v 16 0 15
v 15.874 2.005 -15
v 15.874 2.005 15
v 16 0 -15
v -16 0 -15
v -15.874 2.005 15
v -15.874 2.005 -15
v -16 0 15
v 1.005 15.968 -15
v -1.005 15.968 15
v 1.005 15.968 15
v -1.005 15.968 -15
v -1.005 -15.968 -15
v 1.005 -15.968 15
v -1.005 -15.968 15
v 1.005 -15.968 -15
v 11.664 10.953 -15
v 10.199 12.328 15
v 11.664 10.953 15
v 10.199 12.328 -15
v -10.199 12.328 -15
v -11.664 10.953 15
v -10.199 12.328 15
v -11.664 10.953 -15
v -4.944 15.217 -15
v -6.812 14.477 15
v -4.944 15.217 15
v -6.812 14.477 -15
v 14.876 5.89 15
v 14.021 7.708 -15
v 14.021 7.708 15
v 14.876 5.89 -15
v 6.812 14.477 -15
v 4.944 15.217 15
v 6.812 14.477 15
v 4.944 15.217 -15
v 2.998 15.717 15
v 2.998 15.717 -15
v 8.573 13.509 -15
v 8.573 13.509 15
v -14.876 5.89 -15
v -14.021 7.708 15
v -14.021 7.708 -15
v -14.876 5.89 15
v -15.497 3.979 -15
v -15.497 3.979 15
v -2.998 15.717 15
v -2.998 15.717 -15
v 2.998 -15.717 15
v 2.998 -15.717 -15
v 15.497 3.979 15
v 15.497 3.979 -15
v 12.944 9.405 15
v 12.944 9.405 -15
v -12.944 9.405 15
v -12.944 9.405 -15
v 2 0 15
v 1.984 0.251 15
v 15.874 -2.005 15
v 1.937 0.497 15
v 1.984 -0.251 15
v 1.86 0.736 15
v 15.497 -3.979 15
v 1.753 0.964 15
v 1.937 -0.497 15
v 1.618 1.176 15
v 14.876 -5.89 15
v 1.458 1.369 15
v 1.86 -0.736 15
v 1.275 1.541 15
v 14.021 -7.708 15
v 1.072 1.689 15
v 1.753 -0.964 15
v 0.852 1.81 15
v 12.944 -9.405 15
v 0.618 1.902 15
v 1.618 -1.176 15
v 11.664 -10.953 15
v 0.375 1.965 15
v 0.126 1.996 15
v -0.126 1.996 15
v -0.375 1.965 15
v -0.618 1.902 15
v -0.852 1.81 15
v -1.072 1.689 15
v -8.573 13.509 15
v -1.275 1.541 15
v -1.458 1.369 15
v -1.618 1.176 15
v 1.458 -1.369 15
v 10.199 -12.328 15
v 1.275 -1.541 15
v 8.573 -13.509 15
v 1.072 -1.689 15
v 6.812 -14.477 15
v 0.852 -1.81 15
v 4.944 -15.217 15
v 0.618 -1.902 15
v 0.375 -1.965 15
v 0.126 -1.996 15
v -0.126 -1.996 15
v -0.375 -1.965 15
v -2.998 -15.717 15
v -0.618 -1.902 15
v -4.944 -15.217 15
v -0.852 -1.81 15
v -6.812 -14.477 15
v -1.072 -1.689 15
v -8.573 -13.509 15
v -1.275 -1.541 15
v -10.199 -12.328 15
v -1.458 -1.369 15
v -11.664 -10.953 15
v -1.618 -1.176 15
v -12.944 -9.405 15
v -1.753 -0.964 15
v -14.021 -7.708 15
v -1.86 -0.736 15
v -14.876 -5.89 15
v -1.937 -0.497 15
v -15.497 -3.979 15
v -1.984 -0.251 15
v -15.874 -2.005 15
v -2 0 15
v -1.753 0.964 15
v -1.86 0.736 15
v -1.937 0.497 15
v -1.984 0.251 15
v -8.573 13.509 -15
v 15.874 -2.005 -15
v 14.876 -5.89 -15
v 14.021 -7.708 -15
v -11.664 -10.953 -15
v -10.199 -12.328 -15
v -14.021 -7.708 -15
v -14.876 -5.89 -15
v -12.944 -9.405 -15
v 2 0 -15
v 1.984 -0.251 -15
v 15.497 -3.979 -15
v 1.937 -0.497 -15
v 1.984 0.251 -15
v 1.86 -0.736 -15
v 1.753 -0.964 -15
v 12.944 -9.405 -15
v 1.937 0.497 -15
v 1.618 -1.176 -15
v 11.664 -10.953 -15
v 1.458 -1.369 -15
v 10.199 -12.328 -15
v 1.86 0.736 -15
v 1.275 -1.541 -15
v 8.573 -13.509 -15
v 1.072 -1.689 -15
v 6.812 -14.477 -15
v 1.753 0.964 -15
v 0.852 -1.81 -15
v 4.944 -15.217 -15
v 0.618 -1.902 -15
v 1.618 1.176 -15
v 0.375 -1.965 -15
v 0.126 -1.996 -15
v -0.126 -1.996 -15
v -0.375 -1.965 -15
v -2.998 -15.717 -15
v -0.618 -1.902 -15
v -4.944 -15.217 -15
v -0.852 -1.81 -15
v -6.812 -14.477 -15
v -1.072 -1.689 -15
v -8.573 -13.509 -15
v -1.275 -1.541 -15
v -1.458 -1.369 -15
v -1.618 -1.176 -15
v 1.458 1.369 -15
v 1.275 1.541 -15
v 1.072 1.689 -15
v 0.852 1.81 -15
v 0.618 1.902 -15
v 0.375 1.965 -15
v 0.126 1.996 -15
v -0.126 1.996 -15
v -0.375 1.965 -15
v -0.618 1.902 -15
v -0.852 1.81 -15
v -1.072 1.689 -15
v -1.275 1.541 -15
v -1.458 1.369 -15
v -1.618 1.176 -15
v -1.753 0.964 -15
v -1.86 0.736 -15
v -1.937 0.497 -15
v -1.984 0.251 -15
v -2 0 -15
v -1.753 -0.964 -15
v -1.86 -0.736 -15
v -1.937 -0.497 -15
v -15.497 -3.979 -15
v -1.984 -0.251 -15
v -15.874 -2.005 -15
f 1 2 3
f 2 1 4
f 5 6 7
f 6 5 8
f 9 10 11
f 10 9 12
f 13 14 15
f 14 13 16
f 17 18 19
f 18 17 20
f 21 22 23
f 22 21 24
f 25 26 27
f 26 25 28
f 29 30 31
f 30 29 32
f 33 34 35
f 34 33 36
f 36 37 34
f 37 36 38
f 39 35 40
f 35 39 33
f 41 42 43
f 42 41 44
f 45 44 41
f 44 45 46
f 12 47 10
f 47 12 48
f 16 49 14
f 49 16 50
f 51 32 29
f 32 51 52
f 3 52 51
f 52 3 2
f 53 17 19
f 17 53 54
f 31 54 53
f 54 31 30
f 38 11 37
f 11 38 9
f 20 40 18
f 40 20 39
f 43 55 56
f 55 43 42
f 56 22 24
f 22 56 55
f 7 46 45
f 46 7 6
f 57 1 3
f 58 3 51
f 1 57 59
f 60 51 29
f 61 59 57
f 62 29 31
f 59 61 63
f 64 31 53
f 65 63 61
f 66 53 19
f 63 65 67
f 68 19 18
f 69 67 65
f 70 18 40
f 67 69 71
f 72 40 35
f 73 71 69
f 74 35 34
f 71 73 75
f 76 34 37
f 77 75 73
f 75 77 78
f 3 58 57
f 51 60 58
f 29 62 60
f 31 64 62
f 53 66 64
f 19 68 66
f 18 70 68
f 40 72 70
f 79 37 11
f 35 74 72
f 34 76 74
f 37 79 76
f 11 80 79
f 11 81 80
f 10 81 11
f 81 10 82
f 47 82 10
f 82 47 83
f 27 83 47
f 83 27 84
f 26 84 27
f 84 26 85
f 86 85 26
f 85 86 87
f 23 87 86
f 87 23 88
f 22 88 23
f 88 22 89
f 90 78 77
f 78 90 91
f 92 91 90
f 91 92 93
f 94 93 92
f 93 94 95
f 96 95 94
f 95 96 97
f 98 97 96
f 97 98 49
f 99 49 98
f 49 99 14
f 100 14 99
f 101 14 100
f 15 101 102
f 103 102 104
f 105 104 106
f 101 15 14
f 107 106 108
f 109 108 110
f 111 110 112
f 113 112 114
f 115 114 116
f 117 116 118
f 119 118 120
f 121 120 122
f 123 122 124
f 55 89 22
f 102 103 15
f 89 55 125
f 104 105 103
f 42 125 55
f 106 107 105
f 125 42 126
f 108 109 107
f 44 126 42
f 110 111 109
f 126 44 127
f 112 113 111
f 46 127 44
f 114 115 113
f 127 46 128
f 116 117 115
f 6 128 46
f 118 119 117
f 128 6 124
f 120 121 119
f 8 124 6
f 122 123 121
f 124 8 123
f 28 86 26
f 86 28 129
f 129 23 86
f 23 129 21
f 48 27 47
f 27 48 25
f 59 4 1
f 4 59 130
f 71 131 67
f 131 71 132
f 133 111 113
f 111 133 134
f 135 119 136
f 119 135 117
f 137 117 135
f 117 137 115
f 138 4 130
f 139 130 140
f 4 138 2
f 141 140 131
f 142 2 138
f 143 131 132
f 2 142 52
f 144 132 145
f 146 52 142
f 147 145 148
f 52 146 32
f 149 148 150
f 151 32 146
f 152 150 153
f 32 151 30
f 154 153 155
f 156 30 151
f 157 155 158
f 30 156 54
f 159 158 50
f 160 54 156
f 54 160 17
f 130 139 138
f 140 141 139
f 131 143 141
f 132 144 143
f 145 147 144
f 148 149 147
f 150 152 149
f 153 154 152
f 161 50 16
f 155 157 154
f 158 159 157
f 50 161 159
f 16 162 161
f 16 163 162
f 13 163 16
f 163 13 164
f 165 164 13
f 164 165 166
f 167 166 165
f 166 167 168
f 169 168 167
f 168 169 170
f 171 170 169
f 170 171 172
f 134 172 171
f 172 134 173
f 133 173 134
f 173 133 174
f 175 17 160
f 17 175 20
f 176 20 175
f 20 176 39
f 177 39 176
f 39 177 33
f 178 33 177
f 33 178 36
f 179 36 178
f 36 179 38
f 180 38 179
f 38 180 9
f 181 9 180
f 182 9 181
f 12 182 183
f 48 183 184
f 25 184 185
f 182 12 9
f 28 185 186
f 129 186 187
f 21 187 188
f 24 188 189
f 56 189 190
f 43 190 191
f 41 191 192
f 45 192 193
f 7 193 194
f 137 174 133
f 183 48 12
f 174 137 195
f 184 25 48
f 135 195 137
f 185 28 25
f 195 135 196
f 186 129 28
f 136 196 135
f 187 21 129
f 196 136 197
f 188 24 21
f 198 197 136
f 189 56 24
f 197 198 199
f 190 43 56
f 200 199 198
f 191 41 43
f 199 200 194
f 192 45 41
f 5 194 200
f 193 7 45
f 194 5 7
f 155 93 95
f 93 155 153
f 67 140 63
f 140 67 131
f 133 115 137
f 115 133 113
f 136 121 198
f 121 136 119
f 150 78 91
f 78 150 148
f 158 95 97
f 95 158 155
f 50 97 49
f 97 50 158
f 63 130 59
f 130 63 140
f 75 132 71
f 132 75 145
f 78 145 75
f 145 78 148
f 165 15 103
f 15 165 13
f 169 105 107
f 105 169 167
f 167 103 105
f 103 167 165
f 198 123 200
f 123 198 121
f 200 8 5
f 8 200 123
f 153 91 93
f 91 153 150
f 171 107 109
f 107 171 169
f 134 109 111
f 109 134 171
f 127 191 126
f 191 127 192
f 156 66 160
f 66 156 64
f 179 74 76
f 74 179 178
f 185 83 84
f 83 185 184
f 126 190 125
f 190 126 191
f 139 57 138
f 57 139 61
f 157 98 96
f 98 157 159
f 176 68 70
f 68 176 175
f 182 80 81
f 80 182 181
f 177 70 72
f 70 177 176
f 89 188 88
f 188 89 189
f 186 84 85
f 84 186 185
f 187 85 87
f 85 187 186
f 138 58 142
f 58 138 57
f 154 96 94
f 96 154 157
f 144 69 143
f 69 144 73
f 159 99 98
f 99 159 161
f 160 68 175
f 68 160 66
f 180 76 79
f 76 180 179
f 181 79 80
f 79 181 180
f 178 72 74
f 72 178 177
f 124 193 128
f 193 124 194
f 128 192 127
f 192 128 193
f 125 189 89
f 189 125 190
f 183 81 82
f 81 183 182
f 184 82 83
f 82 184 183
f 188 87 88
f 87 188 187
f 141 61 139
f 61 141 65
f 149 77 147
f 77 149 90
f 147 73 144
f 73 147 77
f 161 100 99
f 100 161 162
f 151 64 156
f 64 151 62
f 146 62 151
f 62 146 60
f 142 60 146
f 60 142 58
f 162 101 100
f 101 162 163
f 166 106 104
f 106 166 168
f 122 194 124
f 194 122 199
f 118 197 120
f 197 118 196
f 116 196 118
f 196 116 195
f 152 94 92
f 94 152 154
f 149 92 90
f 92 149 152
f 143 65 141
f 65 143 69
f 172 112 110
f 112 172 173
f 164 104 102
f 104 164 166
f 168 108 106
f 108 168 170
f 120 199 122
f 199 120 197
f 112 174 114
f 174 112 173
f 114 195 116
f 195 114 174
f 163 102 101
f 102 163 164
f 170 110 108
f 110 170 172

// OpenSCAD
$fn = 50;


difference() {
	union() {
		translate(v = [0, 0, -15.0000000000]) {
			cylinder(h = 30, r = 16.0000000000);
		}
	}
	union() {
		translate(v = [0, 0, -100.0000000000]) {
			cylinder(h = 200, r = 2);
		}
	}
}
